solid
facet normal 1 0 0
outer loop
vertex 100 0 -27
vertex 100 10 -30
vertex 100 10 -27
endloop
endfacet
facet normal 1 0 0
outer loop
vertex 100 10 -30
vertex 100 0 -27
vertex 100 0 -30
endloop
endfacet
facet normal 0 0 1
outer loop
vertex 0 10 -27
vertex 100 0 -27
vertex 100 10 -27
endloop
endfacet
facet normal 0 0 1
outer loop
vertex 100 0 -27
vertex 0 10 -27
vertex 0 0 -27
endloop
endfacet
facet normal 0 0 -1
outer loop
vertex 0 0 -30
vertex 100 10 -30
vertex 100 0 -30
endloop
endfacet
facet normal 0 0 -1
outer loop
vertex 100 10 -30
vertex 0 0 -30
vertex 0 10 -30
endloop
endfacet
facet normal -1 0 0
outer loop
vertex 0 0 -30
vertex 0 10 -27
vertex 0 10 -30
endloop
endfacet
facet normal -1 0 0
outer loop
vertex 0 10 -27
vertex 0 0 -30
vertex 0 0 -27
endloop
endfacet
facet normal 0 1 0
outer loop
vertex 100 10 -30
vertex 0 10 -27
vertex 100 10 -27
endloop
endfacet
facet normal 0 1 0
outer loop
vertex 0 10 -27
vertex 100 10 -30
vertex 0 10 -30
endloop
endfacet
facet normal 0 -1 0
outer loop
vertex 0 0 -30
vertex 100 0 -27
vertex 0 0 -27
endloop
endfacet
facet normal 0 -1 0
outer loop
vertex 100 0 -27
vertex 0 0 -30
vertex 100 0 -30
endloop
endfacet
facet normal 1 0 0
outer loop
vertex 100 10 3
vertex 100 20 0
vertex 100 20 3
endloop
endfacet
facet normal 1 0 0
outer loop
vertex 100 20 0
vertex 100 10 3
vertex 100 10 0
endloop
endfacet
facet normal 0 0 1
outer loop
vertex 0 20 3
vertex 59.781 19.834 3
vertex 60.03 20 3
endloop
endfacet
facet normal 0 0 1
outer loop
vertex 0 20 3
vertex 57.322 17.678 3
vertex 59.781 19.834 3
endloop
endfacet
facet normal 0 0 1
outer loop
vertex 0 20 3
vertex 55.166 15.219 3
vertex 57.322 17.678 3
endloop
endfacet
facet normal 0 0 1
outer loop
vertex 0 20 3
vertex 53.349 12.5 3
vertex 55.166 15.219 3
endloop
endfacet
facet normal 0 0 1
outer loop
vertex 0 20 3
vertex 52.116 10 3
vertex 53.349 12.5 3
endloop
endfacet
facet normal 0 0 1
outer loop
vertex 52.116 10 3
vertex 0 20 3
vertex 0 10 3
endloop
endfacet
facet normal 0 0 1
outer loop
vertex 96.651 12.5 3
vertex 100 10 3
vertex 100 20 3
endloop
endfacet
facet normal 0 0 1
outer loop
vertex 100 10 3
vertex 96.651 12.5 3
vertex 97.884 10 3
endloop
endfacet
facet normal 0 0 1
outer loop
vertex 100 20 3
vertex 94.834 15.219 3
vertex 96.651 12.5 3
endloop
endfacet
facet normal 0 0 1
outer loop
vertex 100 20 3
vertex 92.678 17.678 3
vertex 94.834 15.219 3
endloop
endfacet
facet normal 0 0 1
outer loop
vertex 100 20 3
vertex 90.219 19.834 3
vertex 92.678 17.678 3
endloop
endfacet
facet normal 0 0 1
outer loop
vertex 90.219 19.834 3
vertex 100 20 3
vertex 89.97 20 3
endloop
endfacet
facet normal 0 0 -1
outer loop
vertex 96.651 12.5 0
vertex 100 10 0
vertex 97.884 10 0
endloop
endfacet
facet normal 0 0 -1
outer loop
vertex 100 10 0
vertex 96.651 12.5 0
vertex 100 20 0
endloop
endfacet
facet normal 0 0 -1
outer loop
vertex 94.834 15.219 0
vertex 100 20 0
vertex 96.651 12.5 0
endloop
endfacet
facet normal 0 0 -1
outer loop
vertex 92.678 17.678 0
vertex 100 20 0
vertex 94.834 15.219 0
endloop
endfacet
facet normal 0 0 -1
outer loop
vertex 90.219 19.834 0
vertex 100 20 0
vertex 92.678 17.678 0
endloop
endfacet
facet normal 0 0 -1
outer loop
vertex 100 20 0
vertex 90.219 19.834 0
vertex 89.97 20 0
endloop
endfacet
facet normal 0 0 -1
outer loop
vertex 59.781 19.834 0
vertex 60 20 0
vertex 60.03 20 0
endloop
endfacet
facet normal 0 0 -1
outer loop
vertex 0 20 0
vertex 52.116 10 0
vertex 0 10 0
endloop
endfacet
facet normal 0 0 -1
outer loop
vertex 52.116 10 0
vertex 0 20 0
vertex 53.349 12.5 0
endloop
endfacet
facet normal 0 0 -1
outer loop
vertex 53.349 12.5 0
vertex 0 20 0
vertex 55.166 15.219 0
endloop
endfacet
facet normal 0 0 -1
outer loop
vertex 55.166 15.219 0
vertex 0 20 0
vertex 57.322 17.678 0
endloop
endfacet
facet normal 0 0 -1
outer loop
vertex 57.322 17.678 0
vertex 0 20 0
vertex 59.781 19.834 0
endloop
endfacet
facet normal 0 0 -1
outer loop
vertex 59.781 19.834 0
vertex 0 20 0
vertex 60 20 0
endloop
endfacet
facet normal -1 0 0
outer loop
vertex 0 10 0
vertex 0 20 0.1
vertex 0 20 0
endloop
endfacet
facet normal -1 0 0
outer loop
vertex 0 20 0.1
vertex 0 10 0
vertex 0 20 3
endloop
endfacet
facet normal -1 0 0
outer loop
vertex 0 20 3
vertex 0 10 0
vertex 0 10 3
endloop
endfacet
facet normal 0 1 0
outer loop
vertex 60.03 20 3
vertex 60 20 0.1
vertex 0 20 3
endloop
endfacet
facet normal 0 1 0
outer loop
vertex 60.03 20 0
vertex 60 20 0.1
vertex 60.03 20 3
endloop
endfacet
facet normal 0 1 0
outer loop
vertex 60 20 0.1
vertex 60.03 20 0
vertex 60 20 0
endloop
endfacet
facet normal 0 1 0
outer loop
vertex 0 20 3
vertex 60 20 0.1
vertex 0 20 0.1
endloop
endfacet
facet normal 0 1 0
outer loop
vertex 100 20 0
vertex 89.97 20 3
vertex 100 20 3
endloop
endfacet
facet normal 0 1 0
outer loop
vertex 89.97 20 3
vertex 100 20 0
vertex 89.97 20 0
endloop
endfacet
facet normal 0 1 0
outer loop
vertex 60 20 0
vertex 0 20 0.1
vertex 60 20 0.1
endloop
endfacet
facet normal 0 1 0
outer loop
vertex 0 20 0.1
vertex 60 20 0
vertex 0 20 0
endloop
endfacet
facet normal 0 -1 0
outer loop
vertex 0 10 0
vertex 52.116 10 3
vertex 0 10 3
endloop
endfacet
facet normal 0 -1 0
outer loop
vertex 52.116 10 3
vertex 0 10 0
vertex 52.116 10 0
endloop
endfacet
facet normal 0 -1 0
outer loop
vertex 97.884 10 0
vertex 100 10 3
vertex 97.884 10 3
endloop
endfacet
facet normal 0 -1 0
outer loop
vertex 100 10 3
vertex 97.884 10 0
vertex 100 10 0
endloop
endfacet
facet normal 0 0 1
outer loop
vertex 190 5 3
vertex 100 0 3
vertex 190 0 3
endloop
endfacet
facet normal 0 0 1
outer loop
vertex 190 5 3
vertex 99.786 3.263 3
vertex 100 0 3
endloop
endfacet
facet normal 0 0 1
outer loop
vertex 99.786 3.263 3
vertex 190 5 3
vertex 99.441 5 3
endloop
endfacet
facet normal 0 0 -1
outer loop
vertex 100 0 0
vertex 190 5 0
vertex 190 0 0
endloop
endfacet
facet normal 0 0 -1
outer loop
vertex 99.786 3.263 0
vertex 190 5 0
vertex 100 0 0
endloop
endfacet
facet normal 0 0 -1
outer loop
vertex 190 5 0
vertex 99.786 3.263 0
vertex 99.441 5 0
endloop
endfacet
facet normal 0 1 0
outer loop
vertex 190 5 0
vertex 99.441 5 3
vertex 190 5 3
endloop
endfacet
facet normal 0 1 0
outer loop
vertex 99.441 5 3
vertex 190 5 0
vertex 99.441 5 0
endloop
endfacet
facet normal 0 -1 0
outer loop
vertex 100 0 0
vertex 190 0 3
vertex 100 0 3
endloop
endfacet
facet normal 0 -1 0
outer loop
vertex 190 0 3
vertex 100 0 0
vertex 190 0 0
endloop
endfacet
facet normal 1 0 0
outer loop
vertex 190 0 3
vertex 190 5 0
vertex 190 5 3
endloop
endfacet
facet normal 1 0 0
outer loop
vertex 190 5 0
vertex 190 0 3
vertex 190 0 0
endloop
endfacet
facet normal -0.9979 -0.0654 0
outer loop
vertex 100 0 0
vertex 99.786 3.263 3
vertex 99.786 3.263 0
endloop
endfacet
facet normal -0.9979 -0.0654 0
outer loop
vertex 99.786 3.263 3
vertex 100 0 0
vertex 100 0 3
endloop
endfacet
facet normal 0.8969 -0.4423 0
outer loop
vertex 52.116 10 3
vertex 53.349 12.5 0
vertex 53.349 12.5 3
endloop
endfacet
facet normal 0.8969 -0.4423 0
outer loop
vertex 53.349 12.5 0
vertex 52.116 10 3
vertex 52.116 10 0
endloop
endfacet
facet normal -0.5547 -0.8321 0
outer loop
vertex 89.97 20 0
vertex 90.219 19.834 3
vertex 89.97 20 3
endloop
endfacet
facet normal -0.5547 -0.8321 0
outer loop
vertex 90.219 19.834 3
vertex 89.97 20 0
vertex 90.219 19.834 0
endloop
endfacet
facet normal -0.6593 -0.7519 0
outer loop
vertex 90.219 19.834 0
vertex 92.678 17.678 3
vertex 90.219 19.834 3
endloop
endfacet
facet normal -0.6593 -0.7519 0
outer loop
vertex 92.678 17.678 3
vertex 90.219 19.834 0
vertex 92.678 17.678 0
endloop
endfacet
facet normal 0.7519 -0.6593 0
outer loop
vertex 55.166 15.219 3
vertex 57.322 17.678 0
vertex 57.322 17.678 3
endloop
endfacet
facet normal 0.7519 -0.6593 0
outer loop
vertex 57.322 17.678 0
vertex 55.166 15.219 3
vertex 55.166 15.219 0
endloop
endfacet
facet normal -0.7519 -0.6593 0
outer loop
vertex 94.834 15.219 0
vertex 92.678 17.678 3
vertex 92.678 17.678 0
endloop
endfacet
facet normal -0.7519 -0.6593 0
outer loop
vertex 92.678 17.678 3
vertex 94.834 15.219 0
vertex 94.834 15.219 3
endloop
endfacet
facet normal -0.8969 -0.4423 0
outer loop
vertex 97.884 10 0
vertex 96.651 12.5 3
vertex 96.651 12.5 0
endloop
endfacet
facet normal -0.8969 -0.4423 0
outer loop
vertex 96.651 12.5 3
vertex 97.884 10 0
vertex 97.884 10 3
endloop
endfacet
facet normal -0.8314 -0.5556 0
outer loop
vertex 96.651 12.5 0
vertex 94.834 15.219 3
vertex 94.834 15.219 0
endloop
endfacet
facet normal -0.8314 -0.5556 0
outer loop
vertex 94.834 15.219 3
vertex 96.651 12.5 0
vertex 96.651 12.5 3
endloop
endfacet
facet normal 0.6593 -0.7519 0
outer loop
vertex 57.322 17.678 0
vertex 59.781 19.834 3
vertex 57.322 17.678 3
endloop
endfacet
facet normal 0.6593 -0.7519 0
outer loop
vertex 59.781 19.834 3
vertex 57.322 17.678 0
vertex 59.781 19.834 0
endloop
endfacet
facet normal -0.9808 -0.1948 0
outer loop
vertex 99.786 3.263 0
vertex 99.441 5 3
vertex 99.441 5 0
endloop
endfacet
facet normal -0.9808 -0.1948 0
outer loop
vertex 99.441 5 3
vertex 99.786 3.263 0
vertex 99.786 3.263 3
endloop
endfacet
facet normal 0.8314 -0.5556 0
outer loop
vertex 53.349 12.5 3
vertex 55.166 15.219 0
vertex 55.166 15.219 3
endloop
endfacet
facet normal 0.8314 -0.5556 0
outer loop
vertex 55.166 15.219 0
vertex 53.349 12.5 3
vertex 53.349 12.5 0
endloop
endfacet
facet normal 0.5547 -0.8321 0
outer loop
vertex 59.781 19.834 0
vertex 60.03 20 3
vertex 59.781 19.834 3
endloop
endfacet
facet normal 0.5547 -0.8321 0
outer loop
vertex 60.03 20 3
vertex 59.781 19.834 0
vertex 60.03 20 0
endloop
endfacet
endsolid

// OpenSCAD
// Spoon parameters
spoon_length = 100;
spoon_width = 20;
spoon_depth = 5;
bowl_radius = 25;
handle_width = 10;
handle_thickness = 3;
handle_taper_start = 30;
handle_taper_end = 40;

module spoon() {
  difference() {
    union() {
      // Handle
      translate([0, 0, -handle_taper_start]) {
        cube([spoon_length, handle_width, handle_thickness]);
      }

      translate([0, handle_width, 0]) {
        cube([spoon_length, handle_width, handle_thickness]);
      }

      translate([spoon_length - handle_width, 0, 0]) {
        cube([handle_width, spoon_depth, handle_thickness]);
      }

      translate([spoon_length - handle_width, 0, 0]) {
        cube([spoon_length, spoon_depth, handle_thickness]);
      }
    }

    // Bowl
    translate([spoon_length - bowl_radius, 0, -0.1]) {
      rotate([0, 0, -30]) {
        cylinder(h = bowl_radius * 2, r = bowl_radius, $fn = 48);
      }
    }

    // Handle Taper
    translate([0, spoon_width, 0]) {
      linear_extrude(height = 0.1) {
        polygon(points = [
          [0, 0],
          [spoon_length - 0, handle_taper_start],
          [spoon_length - handle_taper_end, 0]
        ]);
      }
    }
  }
}

spoon();
